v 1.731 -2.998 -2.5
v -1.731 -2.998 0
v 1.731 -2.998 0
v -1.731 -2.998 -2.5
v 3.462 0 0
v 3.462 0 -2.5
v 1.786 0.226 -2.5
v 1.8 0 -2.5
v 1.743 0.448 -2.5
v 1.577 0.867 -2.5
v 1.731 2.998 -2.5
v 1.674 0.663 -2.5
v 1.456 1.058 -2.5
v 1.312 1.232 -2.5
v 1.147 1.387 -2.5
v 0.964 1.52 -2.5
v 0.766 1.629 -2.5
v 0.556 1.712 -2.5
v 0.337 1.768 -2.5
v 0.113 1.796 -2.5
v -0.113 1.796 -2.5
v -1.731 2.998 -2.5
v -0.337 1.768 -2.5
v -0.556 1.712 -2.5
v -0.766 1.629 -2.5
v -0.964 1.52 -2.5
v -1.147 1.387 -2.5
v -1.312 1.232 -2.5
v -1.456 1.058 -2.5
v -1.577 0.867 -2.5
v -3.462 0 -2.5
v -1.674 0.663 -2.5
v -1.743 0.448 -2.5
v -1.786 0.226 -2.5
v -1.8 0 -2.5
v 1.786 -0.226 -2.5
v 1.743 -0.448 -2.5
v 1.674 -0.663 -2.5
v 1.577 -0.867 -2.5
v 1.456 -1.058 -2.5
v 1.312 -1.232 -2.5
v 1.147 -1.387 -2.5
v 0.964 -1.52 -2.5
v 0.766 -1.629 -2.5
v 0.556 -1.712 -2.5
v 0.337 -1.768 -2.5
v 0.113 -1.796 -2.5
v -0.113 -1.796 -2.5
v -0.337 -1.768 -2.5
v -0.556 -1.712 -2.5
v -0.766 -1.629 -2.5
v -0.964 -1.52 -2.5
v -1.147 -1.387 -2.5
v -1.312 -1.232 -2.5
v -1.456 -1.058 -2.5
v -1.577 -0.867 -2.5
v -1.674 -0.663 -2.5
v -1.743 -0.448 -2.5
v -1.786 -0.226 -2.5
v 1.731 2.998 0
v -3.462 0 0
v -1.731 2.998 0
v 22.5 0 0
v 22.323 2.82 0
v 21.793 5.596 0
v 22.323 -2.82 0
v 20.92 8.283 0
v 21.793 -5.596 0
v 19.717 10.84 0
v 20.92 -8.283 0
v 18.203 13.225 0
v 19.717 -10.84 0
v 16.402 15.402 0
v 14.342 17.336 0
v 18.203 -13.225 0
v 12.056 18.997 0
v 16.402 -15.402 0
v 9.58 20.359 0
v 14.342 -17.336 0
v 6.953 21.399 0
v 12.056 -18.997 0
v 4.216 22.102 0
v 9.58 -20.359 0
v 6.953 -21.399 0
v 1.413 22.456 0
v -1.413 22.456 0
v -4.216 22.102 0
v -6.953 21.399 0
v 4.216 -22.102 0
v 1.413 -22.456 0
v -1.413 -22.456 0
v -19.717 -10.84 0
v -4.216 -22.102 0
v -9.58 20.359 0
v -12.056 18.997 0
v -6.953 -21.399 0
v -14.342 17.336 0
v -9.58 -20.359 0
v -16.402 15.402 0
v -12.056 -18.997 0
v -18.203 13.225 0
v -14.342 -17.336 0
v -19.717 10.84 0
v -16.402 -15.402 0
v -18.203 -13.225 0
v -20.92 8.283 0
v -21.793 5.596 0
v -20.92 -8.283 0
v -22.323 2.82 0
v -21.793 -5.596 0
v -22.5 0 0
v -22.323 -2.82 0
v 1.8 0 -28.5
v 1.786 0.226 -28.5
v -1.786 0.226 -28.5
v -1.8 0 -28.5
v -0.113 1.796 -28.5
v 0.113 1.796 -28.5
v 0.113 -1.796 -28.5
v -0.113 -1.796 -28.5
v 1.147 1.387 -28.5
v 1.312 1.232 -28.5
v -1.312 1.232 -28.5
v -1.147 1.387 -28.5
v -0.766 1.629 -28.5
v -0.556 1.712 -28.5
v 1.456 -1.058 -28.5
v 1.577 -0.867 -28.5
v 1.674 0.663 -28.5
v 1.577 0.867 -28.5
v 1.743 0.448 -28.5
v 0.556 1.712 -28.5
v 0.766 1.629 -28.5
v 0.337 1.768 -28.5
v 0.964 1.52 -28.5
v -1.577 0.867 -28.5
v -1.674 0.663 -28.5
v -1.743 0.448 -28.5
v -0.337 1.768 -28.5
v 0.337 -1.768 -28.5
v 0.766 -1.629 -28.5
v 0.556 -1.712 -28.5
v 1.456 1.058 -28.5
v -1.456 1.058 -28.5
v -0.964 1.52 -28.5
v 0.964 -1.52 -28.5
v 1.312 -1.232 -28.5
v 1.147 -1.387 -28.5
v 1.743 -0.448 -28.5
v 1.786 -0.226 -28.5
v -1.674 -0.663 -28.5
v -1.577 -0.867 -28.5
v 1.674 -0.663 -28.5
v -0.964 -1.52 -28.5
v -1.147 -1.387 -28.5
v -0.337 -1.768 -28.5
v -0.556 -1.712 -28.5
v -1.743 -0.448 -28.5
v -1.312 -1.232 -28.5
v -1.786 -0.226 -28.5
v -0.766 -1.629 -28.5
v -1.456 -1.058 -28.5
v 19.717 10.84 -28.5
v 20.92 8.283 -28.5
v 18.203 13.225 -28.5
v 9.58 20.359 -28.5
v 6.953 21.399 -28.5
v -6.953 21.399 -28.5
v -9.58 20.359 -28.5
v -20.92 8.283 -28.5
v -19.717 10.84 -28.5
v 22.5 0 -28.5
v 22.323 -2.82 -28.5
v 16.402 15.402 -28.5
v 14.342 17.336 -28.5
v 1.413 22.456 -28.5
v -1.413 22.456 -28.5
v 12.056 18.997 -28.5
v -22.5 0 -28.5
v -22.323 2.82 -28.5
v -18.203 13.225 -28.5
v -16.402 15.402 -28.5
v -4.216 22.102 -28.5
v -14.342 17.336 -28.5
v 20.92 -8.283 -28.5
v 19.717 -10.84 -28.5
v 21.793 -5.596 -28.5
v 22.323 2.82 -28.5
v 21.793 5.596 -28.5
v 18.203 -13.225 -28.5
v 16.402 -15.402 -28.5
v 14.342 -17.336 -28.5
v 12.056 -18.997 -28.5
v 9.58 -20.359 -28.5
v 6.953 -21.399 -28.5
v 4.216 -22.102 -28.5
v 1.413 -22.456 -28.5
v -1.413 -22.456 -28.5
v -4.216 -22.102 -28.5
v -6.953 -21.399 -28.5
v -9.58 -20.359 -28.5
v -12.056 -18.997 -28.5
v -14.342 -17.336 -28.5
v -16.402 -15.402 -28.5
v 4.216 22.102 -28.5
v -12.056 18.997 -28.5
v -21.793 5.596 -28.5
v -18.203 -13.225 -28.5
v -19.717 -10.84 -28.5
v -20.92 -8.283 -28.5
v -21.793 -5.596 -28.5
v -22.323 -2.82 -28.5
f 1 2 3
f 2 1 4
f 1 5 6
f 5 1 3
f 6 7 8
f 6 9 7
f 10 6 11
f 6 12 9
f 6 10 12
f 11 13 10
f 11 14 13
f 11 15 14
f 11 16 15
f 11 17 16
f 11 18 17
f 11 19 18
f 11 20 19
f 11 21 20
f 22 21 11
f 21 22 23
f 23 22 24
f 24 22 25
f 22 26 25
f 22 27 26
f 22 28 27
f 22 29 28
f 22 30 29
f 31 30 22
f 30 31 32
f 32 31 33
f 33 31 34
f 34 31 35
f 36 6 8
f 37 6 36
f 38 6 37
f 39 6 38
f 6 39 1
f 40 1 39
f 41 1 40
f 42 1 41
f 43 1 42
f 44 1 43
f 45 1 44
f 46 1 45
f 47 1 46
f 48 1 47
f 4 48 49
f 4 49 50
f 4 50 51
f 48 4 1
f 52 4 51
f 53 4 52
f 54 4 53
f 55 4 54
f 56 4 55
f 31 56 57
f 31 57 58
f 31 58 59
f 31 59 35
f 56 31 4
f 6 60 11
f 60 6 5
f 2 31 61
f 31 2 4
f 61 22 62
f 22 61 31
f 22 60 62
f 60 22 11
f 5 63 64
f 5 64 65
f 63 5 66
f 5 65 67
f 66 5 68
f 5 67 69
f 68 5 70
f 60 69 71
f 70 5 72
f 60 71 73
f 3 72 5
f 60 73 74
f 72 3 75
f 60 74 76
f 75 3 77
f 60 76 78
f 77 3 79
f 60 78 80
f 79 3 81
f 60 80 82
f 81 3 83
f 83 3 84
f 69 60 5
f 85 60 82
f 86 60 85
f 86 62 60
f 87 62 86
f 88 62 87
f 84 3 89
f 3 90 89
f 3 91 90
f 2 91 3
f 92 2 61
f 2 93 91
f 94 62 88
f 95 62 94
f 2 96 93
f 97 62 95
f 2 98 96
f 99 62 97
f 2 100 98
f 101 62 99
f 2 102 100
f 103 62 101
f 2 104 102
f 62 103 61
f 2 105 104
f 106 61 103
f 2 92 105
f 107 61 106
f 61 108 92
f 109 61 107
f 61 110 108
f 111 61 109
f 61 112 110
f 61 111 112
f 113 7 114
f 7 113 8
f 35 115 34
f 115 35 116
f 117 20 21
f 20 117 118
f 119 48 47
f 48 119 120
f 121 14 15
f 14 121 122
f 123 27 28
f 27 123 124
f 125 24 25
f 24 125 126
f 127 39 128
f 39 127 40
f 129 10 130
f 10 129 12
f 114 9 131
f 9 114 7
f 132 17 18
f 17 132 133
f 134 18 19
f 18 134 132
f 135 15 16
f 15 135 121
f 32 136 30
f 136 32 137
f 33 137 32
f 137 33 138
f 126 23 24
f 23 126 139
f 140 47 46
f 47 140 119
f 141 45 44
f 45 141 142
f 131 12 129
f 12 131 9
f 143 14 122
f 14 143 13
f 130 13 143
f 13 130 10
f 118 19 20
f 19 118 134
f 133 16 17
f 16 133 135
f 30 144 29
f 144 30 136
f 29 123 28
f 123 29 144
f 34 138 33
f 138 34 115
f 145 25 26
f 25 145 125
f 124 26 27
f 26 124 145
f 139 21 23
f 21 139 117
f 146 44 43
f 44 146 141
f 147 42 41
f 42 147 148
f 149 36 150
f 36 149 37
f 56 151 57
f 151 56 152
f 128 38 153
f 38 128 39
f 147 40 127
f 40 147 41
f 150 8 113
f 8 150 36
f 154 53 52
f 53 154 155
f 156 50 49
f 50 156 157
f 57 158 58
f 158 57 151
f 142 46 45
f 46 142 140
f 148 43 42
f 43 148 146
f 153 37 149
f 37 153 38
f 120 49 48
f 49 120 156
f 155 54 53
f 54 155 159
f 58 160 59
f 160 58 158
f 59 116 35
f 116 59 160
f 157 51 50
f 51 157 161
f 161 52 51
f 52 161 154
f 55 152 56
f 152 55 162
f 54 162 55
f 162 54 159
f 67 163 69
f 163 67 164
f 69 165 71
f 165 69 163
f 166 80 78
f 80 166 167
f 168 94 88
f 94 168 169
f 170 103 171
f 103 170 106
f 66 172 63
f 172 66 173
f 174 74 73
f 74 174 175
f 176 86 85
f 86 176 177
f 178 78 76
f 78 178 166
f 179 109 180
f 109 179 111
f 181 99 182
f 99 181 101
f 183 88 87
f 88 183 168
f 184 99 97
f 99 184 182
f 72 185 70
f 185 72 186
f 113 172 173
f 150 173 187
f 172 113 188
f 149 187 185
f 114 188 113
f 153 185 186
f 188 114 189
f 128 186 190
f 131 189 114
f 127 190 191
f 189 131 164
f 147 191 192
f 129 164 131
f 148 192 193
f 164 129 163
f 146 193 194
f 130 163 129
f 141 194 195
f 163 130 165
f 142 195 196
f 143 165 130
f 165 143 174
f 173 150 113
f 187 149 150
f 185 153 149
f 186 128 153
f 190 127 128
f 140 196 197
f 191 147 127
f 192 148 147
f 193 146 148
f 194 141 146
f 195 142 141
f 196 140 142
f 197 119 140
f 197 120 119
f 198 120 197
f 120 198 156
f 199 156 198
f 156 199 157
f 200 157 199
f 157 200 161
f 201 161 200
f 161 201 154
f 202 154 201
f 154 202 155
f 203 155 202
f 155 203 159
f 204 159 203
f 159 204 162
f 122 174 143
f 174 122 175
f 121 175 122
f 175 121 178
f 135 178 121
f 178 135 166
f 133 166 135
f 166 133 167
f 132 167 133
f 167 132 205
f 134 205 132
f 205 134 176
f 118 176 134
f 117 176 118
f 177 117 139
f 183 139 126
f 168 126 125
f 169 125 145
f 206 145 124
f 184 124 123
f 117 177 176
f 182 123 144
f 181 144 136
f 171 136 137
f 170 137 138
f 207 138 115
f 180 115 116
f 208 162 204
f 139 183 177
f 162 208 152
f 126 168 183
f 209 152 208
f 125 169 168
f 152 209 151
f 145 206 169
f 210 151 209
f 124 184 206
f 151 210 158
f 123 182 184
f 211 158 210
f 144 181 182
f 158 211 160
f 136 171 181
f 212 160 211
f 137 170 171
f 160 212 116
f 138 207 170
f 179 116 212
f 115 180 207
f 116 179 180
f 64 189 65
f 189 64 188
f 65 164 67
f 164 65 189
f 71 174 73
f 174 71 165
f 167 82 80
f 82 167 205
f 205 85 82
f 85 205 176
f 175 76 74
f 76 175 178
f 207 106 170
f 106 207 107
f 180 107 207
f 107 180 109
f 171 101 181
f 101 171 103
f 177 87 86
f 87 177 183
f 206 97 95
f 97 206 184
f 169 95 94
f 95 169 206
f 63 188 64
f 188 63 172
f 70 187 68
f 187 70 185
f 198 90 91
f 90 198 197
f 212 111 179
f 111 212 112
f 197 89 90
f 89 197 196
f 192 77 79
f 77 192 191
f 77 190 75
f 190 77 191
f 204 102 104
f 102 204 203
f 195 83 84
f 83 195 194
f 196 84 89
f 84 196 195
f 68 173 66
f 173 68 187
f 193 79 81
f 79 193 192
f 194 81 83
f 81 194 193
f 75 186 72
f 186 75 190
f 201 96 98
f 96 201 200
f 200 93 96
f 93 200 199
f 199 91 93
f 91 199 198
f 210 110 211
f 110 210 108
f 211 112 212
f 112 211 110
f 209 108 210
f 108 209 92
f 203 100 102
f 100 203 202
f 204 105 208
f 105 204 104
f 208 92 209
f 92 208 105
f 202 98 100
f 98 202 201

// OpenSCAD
$fn = 50;


difference() {
	union() {
		translate(v = [0, 0, -28.5000000000]) {
			cylinder(h = 28.5000000000, r = 22.5000000000);
		}
	}
	union() {
		translate(v = [0, 0, 0]) {
			rotate(a = [0, 0, 0]) {
				difference() {
					union() {
						translate(v = [0, 0, -2.5000000000]) {
							linear_extrude(height = 2.5000000000) {
								polygon(points = [[3.4620000000, 0.0000000000], [1.7310000000, 2.9981799479], [-1.7310000000, 2.9981799479], [-3.4620000000, 0.0000000000], [-1.7310000000, -2.9981799479], [1.7310000000, -2.9981799479]]);
							}
						}
					}
					union();
				}
			}
		}
		#translate(v = [0, 0, -100.0000000000]) {
			cylinder(h = 200, r = 1.8000000000);
		}
	}
}
